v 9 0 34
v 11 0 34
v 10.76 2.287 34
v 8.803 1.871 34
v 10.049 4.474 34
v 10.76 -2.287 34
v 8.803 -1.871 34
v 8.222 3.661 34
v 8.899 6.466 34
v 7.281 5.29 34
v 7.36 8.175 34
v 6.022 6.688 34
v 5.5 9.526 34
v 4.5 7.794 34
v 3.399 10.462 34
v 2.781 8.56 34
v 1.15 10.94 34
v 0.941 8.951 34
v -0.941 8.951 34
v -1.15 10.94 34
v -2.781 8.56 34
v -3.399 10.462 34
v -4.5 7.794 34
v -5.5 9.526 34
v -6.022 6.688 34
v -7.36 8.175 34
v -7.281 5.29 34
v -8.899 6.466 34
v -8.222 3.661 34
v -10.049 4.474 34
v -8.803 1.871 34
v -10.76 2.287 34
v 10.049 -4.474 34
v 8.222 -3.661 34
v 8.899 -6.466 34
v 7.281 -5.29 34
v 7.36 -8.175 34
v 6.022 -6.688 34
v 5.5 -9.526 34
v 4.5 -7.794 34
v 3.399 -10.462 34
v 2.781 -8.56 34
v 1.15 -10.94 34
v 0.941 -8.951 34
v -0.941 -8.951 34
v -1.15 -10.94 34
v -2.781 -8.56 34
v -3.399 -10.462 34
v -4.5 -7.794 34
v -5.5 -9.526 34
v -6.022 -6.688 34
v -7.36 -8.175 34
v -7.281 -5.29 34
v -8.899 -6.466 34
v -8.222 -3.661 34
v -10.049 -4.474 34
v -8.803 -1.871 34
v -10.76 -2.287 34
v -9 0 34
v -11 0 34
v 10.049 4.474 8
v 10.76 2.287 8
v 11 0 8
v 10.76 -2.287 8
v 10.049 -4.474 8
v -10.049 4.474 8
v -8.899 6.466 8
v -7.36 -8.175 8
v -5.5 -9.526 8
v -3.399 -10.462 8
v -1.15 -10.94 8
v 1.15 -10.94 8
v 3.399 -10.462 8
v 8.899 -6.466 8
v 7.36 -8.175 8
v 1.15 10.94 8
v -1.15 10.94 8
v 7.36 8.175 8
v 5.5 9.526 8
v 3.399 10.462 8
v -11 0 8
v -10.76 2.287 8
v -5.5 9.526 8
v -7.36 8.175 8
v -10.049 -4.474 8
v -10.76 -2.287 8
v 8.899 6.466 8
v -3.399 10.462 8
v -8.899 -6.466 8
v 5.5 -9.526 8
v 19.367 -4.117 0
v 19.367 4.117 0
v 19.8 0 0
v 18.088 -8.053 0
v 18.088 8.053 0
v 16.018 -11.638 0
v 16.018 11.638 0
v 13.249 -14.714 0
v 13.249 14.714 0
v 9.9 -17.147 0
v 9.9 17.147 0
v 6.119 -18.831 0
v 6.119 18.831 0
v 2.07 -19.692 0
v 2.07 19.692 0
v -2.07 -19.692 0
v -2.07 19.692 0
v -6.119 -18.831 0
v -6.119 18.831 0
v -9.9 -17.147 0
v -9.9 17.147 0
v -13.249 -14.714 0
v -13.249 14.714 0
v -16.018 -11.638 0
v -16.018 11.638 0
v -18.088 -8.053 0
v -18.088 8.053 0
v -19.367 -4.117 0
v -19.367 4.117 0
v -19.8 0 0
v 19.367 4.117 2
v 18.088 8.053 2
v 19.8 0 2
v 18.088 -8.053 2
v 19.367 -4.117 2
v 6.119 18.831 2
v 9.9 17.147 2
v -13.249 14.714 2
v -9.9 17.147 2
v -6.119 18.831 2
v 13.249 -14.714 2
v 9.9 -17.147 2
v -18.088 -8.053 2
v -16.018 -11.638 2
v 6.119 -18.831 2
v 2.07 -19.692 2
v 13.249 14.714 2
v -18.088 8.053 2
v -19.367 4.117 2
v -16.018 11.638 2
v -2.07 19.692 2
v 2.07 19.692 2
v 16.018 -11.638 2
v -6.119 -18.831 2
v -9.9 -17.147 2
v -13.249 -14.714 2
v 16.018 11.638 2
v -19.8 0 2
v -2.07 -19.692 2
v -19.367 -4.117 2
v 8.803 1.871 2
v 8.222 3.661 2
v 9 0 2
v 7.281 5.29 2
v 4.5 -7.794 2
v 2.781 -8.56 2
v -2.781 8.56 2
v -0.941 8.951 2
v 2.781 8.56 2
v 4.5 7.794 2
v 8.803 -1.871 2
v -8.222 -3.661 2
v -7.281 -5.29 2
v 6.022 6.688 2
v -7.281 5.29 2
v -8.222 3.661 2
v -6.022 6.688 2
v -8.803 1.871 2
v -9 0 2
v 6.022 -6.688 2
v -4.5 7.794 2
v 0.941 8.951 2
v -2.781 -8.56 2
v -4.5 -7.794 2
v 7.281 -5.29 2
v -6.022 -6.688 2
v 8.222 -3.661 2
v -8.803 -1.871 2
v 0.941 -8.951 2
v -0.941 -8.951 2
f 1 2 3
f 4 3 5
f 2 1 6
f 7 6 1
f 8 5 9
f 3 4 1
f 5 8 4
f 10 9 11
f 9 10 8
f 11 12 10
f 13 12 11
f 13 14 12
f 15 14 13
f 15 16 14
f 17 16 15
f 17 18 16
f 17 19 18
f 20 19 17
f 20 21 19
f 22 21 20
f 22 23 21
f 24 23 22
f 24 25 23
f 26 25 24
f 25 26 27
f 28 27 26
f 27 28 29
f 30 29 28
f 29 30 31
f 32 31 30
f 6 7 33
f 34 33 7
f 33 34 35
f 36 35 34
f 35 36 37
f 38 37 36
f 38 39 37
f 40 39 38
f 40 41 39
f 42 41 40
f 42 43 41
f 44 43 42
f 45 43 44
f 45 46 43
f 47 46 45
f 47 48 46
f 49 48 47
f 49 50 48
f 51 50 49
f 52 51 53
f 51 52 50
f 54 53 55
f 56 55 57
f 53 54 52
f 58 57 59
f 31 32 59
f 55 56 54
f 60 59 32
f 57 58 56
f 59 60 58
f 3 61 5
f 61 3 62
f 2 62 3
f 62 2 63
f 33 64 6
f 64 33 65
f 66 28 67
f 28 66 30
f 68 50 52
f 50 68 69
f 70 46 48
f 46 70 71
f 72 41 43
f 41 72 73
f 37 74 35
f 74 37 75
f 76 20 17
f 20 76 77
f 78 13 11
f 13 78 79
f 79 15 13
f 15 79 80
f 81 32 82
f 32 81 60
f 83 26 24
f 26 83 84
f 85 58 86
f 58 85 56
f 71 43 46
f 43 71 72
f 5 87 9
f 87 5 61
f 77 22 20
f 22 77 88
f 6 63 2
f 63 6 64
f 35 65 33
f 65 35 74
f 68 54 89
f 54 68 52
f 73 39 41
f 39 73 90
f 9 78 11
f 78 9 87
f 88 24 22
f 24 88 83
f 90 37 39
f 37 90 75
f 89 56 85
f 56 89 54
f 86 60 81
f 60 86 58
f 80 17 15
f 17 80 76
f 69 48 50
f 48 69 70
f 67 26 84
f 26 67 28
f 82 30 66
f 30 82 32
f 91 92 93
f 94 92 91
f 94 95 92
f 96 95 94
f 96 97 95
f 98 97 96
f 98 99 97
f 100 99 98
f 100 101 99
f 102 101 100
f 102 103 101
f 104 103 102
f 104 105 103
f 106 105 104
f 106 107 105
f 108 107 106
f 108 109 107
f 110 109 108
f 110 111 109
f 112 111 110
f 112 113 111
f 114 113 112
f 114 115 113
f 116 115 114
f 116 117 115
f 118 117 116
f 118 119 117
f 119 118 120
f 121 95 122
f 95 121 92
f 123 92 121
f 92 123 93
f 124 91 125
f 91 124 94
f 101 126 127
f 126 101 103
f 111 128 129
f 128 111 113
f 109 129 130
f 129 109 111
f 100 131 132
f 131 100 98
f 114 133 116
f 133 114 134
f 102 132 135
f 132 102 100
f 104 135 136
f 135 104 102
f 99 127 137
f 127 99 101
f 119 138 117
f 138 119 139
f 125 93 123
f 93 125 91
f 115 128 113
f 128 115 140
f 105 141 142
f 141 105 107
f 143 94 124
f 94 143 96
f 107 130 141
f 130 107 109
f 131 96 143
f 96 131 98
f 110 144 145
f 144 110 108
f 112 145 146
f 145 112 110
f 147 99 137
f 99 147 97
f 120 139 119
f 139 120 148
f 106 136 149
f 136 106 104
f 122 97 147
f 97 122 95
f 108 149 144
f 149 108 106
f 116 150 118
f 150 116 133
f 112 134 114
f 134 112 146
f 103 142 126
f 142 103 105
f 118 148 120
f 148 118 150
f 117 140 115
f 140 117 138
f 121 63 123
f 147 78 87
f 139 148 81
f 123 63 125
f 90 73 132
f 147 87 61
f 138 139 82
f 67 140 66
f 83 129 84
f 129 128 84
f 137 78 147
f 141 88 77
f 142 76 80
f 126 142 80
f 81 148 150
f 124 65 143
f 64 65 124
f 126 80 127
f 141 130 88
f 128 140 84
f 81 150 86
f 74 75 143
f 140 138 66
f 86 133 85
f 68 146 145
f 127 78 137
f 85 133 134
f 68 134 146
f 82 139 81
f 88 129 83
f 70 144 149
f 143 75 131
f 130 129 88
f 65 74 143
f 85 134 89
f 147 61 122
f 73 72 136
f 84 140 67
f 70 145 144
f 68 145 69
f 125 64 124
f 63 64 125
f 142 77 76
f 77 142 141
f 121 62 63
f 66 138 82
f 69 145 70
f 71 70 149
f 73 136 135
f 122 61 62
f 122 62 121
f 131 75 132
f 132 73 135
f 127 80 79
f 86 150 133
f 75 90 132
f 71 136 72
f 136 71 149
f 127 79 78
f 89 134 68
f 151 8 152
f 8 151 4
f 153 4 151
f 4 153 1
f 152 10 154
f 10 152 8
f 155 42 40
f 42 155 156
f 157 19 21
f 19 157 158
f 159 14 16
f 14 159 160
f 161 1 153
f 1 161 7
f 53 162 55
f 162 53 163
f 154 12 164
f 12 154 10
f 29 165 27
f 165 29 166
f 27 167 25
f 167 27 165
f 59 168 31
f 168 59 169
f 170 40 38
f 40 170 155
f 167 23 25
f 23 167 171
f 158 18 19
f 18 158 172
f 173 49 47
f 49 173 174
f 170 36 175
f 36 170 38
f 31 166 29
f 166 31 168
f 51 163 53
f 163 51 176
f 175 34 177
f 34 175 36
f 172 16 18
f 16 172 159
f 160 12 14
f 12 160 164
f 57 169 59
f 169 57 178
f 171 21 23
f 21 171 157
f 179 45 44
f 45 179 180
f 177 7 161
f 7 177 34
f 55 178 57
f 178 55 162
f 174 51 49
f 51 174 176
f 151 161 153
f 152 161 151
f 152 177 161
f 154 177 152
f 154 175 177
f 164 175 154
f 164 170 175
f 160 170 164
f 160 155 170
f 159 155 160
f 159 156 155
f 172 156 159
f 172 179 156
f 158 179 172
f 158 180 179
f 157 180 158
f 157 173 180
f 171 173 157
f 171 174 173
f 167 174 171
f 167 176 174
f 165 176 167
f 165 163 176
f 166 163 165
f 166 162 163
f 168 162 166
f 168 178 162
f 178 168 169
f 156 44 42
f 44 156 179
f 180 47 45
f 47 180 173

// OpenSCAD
wall_thickness = 2;

module glue_stick(dia, height) {
  difference() {
    union() {
      // Main body
      cylinder(d=dia+wall_thickness*2, h=height+wall_thickness, $fs=0.1);
      // Base
      cylinder(d=(dia+wall_thickness*2)*1.8, h=wall_thickness, $fs=0.1);
      // Taper
      translate([0, 0, wall_thickness])
      cylinder(d1=(dia+wall_thickness*2)*1.8, d2=dia+wall_thickness*2, h=wall_thickness*3, $fs=0.1);
    }
    // Opening in top
    translate([0, 0, wall_thickness])
      cylinder(d=dia, h=height, $fs=0.1);
  }
}

glue_stick(18, 32);
